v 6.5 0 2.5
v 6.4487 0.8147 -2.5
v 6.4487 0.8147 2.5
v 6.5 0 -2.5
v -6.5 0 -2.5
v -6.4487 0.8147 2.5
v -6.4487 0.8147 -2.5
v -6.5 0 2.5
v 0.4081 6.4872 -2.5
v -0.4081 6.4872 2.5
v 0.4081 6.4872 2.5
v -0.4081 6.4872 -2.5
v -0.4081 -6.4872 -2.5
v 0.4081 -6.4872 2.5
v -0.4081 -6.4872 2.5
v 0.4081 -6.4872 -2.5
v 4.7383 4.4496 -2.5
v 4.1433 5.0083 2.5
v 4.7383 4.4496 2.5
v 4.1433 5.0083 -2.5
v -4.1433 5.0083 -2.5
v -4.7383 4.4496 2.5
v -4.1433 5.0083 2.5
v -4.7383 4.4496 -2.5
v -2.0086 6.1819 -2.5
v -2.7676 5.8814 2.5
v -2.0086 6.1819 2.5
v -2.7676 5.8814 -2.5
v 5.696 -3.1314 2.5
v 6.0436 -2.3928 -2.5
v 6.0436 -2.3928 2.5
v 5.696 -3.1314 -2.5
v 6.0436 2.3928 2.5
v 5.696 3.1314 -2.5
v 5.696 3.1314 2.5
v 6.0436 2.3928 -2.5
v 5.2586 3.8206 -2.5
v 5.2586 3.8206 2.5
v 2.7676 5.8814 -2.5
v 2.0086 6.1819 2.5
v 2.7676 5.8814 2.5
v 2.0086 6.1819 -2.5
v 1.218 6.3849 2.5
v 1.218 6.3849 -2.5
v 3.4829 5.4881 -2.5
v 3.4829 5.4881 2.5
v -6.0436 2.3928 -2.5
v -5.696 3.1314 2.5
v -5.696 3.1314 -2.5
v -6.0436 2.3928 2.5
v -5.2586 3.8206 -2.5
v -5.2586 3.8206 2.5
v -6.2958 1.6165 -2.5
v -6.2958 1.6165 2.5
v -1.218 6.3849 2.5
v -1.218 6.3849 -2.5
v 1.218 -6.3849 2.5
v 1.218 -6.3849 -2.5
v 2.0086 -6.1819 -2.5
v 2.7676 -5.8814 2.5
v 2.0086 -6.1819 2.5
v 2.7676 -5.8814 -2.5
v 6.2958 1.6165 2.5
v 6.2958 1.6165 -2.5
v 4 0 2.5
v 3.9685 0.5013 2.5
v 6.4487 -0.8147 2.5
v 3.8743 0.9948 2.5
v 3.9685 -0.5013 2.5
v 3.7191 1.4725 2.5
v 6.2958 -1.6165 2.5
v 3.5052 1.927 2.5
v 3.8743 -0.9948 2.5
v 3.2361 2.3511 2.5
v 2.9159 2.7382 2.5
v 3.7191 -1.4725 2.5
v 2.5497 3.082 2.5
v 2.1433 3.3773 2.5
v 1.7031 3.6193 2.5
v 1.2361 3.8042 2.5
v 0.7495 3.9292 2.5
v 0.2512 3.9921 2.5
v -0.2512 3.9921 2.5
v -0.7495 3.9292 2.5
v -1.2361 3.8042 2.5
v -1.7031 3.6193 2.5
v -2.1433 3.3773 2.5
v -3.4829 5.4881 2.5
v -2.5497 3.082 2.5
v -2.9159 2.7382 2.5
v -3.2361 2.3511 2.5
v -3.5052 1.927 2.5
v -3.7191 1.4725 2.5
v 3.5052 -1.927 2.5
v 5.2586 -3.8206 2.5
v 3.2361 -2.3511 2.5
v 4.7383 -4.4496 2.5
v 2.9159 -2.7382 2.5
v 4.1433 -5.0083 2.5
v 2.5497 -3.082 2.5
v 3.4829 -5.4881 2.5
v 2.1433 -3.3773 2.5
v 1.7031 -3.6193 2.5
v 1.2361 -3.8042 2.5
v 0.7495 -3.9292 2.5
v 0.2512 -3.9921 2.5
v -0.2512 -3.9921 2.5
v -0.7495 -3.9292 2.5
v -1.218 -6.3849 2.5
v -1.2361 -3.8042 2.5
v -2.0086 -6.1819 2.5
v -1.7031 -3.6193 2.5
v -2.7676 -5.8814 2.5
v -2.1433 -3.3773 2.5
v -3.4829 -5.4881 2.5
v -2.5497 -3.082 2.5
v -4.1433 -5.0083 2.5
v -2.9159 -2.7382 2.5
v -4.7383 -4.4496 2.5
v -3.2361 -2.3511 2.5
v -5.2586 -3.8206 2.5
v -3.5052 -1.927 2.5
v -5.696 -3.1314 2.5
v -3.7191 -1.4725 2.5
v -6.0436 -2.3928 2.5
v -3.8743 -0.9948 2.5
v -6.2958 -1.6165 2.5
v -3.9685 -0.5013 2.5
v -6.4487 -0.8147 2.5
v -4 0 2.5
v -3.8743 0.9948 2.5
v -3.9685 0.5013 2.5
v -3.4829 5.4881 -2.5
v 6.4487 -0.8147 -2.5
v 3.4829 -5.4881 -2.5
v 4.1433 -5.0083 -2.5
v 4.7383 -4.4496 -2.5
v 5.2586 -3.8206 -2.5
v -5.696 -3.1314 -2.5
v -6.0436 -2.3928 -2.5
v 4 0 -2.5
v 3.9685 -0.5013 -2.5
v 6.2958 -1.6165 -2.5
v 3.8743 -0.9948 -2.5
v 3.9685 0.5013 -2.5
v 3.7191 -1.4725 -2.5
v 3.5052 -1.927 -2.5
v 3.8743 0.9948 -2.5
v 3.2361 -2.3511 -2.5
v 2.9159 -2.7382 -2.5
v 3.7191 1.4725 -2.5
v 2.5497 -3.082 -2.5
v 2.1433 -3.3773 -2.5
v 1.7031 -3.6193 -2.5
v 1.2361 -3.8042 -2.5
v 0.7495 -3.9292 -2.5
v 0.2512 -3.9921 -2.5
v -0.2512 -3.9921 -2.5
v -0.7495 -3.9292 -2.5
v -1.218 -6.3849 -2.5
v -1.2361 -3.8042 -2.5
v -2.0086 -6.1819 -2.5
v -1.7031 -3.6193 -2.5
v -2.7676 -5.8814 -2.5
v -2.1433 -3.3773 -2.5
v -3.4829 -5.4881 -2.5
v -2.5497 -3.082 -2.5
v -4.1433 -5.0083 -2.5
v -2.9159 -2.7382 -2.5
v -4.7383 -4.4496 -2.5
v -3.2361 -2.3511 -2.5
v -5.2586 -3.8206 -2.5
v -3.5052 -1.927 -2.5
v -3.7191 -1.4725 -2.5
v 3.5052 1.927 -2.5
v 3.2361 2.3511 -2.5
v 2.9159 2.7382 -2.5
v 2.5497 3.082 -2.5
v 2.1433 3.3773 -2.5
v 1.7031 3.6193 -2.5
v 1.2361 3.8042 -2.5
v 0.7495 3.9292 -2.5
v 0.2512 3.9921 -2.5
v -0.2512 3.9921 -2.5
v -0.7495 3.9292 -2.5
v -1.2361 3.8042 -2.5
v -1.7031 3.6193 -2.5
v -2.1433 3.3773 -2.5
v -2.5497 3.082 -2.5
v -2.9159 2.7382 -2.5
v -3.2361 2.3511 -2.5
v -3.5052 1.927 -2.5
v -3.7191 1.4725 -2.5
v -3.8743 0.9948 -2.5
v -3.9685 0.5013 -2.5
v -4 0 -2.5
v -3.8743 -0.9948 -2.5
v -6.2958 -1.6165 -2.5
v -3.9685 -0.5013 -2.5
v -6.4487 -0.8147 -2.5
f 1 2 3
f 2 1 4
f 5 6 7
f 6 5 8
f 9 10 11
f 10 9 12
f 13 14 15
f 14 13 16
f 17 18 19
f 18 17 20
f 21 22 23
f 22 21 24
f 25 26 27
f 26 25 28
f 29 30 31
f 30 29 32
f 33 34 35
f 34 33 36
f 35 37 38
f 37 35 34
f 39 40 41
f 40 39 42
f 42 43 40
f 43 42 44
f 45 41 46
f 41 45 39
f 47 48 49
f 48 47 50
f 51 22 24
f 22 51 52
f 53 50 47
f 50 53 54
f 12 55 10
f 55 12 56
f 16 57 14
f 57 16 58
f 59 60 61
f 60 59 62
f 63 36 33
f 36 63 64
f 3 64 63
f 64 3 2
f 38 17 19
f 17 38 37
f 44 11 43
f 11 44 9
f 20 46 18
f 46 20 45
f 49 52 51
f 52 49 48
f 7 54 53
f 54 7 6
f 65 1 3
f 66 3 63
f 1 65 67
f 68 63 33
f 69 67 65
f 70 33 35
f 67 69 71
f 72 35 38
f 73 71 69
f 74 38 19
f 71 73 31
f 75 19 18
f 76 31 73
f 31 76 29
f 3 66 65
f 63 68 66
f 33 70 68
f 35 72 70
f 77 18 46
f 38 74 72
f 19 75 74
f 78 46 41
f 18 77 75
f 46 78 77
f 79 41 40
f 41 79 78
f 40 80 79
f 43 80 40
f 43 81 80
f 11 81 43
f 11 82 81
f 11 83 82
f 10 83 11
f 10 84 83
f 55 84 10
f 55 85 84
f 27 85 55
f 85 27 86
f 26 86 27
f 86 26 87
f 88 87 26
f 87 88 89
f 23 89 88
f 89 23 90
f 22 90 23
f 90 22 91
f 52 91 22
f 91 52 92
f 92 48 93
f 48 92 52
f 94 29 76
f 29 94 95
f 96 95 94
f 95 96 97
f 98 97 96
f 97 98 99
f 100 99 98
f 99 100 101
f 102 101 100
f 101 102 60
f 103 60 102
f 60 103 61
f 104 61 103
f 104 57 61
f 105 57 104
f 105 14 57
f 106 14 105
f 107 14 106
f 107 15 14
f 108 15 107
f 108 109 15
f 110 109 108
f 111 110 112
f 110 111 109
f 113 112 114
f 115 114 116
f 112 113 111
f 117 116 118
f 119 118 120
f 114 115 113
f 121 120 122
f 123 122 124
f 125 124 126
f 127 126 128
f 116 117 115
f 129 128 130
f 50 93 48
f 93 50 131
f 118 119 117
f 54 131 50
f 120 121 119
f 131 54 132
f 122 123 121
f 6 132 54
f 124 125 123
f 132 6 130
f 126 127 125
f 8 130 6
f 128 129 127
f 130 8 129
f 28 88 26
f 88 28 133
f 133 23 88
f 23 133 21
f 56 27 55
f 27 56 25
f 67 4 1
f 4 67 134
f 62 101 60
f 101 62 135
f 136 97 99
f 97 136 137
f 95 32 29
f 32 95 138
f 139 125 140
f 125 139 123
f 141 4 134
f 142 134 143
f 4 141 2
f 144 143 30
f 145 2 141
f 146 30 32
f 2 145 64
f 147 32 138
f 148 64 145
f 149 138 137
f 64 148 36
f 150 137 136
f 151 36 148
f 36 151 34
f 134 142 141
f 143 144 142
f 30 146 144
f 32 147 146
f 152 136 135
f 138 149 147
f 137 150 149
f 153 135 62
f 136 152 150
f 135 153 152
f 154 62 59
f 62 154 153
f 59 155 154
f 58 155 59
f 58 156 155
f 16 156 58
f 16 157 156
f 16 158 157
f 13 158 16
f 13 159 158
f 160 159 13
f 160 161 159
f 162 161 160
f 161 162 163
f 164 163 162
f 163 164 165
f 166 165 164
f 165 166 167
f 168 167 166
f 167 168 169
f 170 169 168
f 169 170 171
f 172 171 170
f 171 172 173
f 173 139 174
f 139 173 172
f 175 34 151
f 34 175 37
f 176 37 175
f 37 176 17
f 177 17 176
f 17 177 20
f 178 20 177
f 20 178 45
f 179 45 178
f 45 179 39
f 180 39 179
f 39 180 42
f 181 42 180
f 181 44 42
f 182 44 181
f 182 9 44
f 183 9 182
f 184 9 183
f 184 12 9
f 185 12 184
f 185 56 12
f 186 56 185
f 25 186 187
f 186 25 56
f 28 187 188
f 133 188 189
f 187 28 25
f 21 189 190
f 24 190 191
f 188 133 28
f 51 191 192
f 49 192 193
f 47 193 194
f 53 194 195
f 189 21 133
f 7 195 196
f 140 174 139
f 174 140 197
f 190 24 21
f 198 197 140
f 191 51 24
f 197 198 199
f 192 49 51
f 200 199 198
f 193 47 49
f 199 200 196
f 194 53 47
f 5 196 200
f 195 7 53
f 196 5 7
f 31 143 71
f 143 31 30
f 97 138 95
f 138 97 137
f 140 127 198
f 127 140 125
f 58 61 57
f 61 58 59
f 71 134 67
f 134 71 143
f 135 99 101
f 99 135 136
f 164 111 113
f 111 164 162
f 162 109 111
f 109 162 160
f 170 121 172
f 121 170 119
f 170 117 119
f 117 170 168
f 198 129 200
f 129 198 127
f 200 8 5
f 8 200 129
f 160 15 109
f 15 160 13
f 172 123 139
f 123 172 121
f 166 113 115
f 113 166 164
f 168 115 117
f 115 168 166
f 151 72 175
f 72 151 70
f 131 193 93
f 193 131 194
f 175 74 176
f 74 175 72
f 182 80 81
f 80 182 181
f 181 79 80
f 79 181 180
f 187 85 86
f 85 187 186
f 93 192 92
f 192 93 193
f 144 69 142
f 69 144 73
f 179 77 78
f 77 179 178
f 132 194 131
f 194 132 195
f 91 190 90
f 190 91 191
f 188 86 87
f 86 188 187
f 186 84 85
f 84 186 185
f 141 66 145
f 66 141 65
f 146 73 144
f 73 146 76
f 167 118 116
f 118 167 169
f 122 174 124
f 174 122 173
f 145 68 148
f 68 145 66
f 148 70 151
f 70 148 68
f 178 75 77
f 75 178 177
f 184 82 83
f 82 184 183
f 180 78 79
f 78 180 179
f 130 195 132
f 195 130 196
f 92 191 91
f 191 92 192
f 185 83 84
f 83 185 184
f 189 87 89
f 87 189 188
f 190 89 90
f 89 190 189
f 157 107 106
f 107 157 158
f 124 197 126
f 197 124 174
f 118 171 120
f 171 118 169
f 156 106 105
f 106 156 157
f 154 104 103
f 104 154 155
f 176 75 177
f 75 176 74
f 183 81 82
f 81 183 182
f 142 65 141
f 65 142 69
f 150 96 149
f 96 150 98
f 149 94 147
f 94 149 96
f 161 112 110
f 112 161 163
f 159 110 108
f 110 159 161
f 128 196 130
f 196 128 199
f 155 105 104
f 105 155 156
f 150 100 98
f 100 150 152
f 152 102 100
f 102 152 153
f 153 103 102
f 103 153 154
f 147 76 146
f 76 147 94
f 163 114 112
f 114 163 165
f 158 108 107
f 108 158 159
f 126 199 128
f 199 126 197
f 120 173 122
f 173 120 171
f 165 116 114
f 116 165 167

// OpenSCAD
$fn = 50;


difference() {
	union() {
		translate(v = [0, 0, -2.5000000000]) {
			cylinder(h = 5, r = 6.5000000000);
		}
	}
	union() {
		translate(v = [0, 0, -100.0000000000]) {
			cylinder(h = 200, r = 4);
		}
	}
}
